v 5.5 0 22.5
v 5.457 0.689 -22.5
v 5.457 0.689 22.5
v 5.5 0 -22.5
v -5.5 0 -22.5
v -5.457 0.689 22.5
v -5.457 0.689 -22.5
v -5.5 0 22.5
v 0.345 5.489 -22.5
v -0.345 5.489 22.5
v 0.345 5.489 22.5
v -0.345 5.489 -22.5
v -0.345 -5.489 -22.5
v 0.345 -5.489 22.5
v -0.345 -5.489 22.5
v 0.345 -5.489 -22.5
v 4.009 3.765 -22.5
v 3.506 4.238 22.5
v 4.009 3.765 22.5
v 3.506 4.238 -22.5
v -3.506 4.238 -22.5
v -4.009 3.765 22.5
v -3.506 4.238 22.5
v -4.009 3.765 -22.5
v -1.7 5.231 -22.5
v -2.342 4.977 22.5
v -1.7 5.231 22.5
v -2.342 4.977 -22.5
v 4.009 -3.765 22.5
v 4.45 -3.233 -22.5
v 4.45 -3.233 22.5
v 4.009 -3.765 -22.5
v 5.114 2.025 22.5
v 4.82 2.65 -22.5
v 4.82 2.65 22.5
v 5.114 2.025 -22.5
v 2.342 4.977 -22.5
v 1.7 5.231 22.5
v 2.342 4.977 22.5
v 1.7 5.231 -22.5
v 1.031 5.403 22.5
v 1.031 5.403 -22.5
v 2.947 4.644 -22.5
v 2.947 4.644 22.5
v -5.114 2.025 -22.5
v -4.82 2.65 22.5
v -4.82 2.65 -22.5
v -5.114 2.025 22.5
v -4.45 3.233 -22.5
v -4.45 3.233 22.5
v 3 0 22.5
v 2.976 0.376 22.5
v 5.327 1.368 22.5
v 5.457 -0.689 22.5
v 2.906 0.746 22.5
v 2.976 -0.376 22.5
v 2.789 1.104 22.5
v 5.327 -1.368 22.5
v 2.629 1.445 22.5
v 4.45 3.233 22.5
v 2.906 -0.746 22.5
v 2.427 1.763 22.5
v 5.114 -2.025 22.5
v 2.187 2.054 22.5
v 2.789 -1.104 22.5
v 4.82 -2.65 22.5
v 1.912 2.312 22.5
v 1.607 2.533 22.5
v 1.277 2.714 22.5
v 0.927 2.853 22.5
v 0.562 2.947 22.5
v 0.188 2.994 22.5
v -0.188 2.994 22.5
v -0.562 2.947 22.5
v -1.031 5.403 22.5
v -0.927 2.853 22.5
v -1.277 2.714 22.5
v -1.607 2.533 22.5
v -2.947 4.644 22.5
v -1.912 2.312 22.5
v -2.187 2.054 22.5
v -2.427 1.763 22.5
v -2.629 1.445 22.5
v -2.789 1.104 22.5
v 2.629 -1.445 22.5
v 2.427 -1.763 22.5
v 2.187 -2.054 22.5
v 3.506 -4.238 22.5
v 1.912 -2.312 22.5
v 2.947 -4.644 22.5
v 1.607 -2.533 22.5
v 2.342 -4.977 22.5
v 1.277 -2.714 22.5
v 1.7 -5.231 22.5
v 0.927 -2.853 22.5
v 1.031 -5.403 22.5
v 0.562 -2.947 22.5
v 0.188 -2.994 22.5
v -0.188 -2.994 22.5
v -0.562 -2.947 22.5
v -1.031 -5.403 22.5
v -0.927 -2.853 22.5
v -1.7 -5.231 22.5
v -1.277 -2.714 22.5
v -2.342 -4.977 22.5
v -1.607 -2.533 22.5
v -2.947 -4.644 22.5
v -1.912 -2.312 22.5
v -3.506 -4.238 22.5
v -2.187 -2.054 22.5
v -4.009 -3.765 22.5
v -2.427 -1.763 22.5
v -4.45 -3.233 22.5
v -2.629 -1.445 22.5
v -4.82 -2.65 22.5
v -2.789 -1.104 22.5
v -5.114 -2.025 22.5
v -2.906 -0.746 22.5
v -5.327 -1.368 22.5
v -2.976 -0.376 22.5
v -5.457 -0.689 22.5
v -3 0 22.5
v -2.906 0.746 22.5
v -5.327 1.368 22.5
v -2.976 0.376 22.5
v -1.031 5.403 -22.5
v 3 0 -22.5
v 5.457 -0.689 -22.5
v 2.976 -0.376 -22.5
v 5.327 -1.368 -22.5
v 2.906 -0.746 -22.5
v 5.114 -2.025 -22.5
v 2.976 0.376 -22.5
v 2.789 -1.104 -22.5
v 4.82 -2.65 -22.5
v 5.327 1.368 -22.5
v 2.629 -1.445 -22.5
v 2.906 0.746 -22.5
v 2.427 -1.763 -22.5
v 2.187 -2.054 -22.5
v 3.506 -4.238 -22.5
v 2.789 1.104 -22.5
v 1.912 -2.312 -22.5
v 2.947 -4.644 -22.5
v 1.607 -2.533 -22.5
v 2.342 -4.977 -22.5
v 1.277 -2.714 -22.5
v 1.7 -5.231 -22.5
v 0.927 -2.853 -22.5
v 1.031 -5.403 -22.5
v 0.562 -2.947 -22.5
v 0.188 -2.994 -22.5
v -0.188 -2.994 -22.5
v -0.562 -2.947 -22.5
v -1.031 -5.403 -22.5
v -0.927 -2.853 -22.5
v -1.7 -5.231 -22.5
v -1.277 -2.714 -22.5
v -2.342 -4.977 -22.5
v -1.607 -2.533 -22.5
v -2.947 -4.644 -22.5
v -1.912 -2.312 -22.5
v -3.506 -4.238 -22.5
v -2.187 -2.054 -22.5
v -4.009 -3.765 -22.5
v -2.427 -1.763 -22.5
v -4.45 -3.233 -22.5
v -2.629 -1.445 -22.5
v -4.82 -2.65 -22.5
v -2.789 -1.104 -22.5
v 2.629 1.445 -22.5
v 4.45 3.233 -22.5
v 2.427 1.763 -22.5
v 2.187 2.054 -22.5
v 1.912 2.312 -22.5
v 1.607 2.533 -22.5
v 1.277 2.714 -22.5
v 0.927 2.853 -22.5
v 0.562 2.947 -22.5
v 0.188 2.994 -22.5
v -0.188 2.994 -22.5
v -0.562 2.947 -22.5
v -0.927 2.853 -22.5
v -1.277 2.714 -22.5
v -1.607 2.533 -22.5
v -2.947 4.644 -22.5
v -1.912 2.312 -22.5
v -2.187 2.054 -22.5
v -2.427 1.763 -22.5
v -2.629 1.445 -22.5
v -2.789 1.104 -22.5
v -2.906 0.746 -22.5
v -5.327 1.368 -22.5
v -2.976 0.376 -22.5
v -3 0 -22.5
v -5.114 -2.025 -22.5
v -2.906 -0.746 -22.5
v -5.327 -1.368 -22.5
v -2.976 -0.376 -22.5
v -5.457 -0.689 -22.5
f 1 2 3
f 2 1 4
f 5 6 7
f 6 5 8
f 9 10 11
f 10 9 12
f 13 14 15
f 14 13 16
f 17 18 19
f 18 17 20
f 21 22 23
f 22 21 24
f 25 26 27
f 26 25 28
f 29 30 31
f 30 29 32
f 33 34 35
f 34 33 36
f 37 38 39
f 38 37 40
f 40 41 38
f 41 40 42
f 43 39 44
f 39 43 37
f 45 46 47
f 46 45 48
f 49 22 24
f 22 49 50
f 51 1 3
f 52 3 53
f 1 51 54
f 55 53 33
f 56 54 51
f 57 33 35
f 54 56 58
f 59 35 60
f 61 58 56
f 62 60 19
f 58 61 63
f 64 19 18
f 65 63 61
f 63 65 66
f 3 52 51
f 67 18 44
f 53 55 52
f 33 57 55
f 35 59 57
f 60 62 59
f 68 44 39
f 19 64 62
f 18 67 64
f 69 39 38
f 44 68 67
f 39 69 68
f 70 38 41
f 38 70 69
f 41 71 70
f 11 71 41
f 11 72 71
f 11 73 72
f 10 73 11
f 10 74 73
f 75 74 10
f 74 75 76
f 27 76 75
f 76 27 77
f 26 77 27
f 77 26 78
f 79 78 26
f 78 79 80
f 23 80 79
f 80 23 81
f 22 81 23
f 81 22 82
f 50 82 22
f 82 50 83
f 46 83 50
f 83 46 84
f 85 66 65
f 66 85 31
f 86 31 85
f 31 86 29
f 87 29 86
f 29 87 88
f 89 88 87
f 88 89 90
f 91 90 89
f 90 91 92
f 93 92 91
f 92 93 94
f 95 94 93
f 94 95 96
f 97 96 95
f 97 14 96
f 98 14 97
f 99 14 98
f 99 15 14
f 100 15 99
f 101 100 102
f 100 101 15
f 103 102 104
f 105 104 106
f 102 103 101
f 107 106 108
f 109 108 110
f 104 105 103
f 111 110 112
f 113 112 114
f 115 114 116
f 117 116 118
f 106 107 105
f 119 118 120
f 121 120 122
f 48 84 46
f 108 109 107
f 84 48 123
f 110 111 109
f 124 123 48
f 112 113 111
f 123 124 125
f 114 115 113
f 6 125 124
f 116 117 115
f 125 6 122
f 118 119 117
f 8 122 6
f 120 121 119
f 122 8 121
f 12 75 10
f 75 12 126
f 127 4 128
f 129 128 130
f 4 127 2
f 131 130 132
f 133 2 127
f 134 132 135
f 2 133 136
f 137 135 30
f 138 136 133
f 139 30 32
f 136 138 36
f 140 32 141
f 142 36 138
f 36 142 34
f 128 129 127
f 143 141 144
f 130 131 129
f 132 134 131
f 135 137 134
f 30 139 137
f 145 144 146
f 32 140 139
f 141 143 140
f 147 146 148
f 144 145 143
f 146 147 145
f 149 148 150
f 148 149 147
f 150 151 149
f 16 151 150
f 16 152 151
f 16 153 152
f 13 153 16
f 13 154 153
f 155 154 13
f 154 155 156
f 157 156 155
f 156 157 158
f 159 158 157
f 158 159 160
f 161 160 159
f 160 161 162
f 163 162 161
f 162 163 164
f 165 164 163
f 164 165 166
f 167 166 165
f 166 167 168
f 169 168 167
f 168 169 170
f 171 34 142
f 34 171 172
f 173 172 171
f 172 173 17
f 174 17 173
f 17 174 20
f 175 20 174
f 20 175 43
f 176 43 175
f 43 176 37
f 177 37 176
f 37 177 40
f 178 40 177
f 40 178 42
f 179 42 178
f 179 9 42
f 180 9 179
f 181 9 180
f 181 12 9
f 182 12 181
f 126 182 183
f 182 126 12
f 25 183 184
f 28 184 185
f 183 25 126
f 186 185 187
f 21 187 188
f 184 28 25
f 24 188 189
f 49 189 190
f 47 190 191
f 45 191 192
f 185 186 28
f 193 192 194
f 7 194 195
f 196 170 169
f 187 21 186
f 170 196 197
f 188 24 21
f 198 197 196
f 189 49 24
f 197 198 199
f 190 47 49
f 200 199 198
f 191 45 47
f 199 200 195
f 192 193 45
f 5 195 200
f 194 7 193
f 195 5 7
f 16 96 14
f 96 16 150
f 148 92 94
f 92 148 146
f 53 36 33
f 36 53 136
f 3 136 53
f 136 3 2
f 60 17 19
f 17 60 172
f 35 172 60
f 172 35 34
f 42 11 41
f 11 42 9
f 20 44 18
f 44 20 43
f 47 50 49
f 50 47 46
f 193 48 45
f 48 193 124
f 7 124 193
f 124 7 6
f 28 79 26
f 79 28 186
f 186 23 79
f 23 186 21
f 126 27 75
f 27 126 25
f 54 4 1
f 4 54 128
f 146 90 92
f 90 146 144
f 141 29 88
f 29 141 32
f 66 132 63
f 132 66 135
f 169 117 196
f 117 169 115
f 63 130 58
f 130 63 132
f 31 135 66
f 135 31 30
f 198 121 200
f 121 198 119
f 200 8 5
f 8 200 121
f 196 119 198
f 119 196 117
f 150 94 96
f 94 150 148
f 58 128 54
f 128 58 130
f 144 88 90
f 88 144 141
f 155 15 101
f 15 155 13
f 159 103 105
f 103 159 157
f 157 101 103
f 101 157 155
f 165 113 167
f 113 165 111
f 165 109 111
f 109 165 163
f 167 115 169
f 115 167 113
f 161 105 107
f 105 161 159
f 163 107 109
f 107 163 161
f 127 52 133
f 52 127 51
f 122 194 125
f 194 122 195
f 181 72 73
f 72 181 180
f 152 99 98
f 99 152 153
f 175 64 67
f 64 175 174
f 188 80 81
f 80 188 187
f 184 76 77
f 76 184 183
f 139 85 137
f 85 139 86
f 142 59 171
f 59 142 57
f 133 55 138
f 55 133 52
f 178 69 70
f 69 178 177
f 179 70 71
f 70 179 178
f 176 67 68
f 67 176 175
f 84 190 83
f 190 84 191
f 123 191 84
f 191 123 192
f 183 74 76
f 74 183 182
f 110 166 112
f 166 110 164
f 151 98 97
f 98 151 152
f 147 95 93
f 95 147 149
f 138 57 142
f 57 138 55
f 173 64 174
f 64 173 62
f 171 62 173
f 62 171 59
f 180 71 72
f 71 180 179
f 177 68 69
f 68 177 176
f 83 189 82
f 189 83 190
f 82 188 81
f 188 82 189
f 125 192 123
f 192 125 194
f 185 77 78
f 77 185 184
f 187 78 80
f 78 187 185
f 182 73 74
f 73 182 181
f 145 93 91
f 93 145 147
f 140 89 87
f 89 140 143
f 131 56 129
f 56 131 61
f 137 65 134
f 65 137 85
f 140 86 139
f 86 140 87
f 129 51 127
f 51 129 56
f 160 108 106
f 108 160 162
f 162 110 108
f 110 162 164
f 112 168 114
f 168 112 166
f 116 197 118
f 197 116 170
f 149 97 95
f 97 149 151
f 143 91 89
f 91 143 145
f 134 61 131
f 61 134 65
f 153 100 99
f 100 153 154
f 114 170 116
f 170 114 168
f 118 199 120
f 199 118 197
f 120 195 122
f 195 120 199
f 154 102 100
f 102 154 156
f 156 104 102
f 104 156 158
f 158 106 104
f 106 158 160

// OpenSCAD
$fn = 50;


difference() {
	union() {
		translate(v = [0, 0, -22.5000000000]) {
			cylinder(h = 45, r = 5.5000000000);
		}
	}
	union() {
		translate(v = [0, 0, -100.0000000000]) {
			cylinder(h = 200, r = 3);
		}
	}
}
